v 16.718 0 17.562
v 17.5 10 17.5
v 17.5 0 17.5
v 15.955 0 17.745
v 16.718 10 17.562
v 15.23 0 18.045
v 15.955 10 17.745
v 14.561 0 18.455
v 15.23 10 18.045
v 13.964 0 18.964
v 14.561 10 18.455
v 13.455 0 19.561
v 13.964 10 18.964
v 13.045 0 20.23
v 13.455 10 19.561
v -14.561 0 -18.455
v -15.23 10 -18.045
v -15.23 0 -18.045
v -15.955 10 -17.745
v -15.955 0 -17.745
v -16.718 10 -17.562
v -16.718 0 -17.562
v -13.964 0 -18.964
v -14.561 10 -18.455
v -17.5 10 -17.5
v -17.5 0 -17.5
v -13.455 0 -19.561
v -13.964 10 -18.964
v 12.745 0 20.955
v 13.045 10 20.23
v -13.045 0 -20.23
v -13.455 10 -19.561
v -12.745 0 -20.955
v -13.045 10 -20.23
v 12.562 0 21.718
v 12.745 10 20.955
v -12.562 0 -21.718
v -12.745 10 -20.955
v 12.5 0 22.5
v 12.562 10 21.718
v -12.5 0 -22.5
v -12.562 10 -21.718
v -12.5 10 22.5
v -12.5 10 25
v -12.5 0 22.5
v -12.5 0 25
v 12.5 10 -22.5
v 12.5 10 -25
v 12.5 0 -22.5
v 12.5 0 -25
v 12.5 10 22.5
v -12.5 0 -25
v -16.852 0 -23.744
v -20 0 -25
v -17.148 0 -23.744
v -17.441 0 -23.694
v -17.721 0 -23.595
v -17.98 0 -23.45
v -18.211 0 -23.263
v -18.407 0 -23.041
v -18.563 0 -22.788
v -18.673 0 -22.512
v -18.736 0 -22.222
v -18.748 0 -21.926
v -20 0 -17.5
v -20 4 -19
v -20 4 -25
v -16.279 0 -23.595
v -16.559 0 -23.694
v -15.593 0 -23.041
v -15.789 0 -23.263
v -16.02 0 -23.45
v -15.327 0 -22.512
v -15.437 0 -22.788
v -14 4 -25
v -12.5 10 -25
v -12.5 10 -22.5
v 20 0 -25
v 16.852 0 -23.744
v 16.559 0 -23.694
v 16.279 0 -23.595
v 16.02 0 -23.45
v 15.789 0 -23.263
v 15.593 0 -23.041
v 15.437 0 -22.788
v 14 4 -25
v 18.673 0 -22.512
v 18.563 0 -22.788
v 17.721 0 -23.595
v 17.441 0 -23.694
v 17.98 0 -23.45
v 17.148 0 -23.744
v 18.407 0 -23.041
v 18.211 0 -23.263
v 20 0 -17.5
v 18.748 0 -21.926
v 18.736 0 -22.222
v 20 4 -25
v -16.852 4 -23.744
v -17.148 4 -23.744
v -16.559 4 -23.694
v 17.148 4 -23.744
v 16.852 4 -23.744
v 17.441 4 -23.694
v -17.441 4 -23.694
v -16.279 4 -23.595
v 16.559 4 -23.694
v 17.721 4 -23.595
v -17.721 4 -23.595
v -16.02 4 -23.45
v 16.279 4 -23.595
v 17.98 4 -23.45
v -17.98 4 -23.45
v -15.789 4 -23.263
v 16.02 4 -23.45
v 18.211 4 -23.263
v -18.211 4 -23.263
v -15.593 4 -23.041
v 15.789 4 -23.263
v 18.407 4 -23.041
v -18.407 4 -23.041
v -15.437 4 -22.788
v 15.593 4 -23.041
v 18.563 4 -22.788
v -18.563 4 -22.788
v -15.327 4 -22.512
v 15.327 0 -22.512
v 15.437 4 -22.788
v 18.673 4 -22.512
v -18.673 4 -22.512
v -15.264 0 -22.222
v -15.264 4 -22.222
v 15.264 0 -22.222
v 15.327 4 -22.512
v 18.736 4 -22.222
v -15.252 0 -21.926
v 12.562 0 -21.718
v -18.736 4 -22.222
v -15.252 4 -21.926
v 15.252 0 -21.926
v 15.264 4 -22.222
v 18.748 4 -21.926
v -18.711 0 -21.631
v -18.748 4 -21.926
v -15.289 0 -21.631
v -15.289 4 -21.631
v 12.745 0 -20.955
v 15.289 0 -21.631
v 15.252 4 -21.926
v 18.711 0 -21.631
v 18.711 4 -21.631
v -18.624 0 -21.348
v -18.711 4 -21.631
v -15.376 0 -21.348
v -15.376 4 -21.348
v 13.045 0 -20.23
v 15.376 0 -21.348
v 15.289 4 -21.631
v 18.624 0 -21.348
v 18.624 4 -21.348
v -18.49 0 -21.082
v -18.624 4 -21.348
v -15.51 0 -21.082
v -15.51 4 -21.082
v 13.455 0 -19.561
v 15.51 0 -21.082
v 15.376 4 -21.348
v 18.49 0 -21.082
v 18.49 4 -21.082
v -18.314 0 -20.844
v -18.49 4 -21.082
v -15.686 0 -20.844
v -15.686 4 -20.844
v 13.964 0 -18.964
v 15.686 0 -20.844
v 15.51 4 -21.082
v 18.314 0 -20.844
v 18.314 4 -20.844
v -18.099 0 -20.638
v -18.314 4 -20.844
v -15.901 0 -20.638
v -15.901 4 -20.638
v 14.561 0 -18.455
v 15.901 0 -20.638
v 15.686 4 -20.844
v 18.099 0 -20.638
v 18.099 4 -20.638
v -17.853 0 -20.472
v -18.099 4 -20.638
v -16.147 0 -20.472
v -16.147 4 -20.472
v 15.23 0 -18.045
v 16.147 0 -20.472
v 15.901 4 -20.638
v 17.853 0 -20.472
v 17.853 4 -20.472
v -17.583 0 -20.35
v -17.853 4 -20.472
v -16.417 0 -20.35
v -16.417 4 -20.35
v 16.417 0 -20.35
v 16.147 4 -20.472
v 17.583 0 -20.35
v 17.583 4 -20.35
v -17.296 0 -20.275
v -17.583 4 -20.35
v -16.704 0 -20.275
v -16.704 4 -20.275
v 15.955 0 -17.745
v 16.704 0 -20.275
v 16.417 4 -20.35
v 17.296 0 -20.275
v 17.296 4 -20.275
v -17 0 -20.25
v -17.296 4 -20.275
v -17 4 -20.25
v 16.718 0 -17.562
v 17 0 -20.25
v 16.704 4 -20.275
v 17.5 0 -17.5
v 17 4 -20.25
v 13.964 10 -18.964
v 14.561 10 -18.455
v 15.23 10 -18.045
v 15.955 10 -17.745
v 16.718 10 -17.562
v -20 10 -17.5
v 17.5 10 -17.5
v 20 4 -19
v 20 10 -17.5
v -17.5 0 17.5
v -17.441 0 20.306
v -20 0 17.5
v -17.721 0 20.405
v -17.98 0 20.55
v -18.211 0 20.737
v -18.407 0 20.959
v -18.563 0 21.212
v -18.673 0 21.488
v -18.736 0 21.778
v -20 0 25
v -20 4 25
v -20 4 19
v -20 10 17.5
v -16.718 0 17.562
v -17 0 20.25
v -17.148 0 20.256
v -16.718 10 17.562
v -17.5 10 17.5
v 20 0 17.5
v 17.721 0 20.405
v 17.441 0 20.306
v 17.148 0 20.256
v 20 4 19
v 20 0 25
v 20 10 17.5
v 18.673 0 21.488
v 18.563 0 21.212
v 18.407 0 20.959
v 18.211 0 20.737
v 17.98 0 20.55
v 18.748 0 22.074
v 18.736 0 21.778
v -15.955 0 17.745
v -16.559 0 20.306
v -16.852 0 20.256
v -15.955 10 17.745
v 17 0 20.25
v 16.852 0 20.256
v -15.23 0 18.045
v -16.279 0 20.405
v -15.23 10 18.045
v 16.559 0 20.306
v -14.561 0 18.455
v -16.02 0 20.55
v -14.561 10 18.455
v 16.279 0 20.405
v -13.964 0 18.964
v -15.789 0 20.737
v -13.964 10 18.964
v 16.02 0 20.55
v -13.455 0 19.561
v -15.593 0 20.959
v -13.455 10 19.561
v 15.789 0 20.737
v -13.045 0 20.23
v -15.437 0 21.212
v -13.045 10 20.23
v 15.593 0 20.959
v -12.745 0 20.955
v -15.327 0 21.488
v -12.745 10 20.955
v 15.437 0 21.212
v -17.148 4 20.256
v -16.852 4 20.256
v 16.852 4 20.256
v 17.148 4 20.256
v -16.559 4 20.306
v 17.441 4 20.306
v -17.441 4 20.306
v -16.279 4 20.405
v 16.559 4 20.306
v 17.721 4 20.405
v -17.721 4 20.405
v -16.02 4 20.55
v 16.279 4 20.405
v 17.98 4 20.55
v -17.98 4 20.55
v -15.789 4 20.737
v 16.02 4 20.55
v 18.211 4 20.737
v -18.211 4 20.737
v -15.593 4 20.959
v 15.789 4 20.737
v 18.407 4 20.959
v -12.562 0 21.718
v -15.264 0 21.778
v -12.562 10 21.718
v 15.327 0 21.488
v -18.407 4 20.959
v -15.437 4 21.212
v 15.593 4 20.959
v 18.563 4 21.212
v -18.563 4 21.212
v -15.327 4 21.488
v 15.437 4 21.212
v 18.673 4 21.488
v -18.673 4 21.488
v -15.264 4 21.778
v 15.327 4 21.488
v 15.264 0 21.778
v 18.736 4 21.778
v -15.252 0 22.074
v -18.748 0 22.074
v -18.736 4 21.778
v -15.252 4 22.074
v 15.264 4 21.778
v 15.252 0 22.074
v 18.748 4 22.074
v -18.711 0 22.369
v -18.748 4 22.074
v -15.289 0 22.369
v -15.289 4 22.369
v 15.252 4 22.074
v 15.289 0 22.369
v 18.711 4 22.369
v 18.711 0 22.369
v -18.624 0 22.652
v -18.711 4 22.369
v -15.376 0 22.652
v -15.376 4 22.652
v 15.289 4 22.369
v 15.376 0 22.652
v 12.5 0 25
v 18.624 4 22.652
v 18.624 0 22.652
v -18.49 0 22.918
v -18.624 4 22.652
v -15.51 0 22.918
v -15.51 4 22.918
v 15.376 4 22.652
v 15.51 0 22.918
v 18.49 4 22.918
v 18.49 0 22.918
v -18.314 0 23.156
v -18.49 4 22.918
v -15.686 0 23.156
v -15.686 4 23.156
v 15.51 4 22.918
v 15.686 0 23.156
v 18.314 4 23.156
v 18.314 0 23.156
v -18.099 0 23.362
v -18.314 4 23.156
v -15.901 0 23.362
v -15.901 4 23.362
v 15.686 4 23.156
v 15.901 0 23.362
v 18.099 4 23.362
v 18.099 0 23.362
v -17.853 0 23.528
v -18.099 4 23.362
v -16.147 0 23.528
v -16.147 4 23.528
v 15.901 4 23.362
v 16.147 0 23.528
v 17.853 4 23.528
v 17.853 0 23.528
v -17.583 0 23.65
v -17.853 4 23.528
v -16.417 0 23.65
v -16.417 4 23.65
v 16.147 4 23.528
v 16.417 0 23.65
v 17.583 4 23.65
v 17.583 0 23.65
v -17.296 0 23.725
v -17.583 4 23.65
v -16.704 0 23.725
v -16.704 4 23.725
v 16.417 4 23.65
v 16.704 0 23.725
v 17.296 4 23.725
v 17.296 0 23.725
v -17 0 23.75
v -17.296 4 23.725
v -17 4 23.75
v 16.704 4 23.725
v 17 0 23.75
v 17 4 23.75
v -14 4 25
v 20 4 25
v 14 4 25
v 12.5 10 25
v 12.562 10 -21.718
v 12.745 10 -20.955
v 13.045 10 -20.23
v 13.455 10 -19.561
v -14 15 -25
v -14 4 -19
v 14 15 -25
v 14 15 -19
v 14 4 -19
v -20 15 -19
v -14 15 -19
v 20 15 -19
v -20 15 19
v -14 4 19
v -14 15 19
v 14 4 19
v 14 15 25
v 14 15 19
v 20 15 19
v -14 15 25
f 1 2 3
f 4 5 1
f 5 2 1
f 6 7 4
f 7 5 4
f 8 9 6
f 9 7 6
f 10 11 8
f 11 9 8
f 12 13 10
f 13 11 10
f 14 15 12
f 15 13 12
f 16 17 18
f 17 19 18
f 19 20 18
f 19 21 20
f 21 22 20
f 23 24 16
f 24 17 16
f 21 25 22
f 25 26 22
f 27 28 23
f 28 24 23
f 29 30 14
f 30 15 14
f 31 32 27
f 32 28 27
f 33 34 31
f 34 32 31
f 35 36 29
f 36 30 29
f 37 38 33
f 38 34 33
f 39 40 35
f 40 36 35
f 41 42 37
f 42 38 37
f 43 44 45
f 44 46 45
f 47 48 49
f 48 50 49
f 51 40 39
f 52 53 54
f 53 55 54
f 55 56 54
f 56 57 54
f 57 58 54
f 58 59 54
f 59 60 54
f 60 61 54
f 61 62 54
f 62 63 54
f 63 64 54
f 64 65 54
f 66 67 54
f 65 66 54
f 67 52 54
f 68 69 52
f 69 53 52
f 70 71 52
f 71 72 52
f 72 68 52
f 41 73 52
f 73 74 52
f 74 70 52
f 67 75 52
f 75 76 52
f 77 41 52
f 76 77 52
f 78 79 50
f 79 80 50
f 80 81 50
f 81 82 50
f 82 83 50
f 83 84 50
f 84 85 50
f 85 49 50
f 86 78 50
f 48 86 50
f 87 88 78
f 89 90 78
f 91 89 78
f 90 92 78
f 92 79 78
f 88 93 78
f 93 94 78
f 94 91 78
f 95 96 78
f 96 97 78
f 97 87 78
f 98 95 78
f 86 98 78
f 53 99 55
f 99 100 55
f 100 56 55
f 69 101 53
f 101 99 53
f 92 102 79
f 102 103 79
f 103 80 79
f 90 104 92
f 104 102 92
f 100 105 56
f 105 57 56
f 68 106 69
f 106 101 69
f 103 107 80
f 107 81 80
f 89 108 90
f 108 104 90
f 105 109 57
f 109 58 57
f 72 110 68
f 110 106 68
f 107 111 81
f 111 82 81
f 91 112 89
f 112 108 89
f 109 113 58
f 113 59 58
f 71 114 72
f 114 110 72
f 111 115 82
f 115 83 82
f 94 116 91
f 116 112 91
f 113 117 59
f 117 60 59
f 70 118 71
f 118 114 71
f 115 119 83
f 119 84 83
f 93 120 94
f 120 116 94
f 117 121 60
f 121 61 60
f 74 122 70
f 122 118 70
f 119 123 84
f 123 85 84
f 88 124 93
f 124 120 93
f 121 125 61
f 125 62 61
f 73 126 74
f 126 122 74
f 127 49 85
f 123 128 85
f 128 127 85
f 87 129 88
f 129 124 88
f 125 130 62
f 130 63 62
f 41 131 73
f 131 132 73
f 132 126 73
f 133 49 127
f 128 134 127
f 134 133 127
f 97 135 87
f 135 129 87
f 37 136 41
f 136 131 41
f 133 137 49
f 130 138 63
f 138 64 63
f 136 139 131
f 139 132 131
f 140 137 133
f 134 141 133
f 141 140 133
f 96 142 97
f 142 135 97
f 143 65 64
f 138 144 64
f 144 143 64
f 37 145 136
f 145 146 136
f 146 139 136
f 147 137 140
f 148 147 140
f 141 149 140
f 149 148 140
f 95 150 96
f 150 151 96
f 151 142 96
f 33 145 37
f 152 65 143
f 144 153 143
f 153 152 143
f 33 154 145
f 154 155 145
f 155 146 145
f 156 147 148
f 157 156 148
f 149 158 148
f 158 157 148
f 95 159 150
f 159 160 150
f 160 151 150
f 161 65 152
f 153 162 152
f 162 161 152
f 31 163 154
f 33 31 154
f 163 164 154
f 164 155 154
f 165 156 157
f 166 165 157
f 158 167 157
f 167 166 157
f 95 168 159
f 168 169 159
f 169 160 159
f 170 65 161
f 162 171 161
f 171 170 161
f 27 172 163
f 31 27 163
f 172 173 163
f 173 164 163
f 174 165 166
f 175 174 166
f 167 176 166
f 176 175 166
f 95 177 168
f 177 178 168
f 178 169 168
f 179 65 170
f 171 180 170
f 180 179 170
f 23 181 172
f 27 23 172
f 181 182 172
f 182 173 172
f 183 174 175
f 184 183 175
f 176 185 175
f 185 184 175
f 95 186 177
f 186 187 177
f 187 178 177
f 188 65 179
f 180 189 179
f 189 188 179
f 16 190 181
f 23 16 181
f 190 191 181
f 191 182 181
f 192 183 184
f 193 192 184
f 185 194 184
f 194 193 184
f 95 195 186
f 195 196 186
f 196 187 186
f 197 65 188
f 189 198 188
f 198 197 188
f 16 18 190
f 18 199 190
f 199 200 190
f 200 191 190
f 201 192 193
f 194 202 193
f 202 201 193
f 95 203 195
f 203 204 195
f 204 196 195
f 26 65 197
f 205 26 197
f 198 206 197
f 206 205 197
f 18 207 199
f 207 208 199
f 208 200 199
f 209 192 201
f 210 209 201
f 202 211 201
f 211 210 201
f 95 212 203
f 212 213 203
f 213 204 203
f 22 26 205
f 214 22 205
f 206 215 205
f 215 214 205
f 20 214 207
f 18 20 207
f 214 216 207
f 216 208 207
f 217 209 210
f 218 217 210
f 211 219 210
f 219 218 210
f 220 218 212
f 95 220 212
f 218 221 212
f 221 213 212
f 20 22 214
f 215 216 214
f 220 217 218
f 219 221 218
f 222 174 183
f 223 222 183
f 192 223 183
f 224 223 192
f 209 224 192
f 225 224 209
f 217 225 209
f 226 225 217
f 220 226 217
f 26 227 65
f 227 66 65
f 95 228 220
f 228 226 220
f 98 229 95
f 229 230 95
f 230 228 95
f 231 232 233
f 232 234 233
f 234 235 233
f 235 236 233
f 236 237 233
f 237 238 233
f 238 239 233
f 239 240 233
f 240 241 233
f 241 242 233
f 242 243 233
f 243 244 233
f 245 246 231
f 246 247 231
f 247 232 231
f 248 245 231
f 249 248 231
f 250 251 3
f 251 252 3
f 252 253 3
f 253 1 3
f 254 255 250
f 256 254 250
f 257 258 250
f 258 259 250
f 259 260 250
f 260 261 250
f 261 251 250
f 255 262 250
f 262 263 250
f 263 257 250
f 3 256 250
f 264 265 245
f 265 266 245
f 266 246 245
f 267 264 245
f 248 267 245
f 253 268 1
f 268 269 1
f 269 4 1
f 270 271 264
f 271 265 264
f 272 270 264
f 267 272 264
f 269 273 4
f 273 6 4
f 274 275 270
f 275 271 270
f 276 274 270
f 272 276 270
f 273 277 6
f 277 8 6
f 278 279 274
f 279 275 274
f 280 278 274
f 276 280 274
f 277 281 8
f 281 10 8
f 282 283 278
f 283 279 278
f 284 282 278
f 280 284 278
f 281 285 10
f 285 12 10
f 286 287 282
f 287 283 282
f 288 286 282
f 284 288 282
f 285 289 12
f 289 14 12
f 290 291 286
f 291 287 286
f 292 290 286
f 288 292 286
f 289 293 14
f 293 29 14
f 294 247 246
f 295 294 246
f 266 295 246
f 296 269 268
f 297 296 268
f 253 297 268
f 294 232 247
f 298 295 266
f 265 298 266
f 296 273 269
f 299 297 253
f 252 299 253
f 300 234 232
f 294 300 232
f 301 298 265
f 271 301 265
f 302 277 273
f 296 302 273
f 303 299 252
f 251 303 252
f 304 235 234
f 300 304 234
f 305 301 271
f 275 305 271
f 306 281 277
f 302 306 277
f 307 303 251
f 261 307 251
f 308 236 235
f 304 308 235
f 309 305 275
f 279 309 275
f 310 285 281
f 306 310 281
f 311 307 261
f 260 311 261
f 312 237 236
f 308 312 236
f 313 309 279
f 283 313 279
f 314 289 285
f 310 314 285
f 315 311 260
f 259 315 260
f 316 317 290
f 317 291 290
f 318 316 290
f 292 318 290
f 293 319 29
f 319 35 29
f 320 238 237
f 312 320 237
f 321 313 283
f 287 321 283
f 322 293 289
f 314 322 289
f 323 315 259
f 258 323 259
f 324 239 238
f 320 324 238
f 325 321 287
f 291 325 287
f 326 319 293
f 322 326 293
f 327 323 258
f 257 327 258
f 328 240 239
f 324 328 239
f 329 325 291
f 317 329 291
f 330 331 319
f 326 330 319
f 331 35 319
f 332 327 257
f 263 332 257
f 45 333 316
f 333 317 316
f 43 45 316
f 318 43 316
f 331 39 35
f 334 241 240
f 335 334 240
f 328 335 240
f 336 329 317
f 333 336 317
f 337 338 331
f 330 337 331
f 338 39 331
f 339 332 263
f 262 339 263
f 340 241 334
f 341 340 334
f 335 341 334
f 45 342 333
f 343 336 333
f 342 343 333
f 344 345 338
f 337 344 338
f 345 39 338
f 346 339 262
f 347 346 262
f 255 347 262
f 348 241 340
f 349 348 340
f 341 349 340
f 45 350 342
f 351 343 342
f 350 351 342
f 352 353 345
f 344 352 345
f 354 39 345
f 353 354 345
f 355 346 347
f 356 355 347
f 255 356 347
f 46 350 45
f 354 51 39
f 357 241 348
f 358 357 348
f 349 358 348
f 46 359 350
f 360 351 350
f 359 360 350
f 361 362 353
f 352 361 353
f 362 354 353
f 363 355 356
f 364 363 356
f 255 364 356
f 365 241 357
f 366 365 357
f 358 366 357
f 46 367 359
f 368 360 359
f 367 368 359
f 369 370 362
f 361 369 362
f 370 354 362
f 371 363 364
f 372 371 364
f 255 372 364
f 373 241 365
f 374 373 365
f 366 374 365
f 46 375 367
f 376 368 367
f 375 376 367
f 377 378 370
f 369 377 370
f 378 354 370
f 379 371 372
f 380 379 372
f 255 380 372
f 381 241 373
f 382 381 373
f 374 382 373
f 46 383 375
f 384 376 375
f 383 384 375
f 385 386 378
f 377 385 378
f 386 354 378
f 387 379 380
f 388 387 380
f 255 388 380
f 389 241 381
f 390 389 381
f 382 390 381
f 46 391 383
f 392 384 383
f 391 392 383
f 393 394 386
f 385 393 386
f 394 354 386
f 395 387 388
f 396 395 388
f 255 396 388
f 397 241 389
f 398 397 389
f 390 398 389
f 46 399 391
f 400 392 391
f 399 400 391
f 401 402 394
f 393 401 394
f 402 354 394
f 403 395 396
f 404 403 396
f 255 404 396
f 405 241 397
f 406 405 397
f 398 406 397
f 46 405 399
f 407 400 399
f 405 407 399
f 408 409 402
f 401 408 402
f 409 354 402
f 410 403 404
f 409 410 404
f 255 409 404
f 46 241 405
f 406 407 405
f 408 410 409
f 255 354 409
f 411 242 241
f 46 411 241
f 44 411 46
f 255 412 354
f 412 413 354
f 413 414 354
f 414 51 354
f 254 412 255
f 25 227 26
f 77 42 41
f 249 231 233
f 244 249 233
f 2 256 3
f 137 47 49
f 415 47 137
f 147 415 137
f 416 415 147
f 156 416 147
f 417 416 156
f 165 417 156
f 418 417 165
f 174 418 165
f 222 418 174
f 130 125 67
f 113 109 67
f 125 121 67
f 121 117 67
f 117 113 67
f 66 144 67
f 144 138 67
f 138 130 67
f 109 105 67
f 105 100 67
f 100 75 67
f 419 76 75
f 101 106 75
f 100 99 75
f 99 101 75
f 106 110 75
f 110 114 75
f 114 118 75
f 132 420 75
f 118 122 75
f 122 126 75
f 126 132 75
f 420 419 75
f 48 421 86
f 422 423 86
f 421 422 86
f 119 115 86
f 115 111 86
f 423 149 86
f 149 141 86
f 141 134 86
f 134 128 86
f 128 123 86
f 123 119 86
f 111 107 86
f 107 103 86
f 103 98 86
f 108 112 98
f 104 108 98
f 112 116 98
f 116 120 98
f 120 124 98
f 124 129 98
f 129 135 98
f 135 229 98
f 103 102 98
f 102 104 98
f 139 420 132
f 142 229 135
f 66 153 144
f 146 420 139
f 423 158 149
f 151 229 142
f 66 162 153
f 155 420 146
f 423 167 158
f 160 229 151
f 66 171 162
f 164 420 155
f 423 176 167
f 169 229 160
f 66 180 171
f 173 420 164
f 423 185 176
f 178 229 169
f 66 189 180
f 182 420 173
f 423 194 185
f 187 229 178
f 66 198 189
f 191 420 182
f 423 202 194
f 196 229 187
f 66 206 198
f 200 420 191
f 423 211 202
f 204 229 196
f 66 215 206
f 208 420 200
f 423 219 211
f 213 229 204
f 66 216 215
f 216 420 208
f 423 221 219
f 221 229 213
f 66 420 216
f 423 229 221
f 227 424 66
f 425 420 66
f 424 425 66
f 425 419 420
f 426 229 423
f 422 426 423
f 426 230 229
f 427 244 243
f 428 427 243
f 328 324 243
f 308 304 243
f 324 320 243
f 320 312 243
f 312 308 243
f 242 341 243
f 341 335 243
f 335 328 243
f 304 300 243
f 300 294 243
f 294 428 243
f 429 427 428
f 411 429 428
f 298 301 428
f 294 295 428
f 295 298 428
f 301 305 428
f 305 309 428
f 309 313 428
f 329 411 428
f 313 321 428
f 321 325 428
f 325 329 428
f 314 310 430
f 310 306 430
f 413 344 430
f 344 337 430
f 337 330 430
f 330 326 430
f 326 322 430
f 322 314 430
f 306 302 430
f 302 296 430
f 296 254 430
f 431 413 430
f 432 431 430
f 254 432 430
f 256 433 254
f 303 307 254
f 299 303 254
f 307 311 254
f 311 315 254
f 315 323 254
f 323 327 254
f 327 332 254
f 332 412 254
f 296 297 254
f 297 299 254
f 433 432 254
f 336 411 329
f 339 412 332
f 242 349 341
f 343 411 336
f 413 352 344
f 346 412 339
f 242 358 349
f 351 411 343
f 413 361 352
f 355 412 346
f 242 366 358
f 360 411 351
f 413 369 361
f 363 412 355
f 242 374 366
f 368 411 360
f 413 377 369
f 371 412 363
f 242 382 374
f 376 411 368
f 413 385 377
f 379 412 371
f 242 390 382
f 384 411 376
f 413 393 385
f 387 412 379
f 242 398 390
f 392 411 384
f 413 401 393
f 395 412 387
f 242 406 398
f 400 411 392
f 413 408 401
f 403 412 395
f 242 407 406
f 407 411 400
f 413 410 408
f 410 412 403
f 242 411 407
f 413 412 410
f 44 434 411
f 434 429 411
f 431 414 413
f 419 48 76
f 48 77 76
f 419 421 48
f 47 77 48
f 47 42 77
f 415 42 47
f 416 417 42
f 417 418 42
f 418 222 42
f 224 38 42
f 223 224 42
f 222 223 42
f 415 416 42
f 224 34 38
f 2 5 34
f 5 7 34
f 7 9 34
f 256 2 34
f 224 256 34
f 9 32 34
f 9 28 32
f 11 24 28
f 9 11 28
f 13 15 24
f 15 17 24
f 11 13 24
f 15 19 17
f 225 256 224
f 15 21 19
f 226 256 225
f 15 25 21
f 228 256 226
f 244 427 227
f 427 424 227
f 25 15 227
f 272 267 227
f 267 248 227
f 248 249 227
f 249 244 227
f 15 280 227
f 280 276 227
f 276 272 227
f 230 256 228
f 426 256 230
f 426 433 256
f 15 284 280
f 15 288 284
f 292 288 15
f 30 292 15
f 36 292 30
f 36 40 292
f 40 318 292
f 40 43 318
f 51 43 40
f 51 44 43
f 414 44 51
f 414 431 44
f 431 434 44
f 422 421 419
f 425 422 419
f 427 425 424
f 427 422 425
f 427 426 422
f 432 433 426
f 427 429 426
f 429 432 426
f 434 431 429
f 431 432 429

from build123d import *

# Parameters (mm, degrees)
CROQUIS1_W                = 40
CROQUIS1_H                = 50
SALIENTE_EXTRUIR1_DEPTH   = 15
CROQUIS2_R                = 1.75
CORTAR_EXTRUIR1_DEPTH     = 15
SIMETR_A2_COPY_1_SKETCH_R = 1.75
SIMETR_A2_COPY_1_DEPTH    = 15
CROQUIS3_W                = 6
CROQUIS3_H                = 6
CORTAR_EXTRUIR6_DEPTH     = 11
SIMETR_A4_COPY_1_SKETCH_W = 6
SIMETR_A4_COPY_1_SKETCH_H = 6
SIMETR_A4_COPY_1_DEPTH    = 11
CROQUIS4_W                = 35
CROQUIS4_H                = 10
CORTAR_EXTRUIR7_DEPTH     = 50.497474683
CROQUIS5_W                = 25
CROQUIS5_H                = 10
CORTAR_EXTRUIR8_DEPTH     = 56.901699437
REDONDEO1_R               = 5


with BuildPart() as part:
    # Croquis1 → Saliente-Extruir1 (new body)
    with BuildSketch(Plane(origin=(0, 0, 0), x_dir=(1, 0, 0), z_dir=(0, 1, 0))):
        Rectangle(CROQUIS1_W, CROQUIS1_H)
    extrude(amount=SALIENTE_EXTRUIR1_DEPTH)

    # Croquis2 → Cortar-Extruir1 (cut)
    with BuildSketch(Plane(origin=(0, 15, 0), x_dir=(1, 0, 0), z_dir=(0, 1, 0))):
        with Locations(Location((-17, 22, 0), (0, 0, 270))):
            Circle(CROQUIS2_R)
    cortar_extruir1 = extrude(amount=-CORTAR_EXTRUIR1_DEPTH, mode=Mode.SUBTRACT)

    # Simetría1: Cortar-Extruir1 across plane
    add(cortar_extruir1.mirror(Plane(origin=(0, 0, 0), x_dir=(0, 0, 1), z_dir=(1, 0, 0))), mode=Mode.SUBTRACT)

    # Simetría2: Cortar-Extruir1 across plane
    add(cortar_extruir1.mirror(Plane.XY), mode=Mode.SUBTRACT)

    # Simetría2 copy 1 sketch → Simetría2 copy 1 (cut)
    with BuildSketch(Plane(origin=(0, 15, 0), x_dir=(-1, 0, 0), z_dir=(0, 1, 0))):
        with Locations(Location((-17, 22, 0), (0, 0, 270))):
            Circle(SIMETR_A2_COPY_1_SKETCH_R)
    extrude(amount=-SIMETR_A2_COPY_1_DEPTH, mode=Mode.SUBTRACT)

    # Croquis3 → Cortar-Extruir6 (cut)
    with BuildSketch(Plane(origin=(0, 15, 0), x_dir=(1, 0, 0), z_dir=(0, 1, 0))):
        with Locations((-17, 22)):
            Rectangle(CROQUIS3_W, CROQUIS3_H)
    cortar_extruir6 = extrude(amount=-CORTAR_EXTRUIR6_DEPTH, mode=Mode.SUBTRACT)

    # Simetría3: Cortar-Extruir6 across plane
    add(cortar_extruir6.mirror(Plane(origin=(0, 0, 0), x_dir=(0, 0, 1), z_dir=(1, 0, 0))), mode=Mode.SUBTRACT)

    # Simetría4: Cortar-Extruir6 across plane
    add(cortar_extruir6.mirror(Plane.XY), mode=Mode.SUBTRACT)

    # Simetría4 copy 1 sketch → Simetría4 copy 1 (cut)
    with BuildSketch(Plane(origin=(0, 15, 0), x_dir=(-1, 0, 0), z_dir=(0, 1, 0))):
        with Locations((-17, 22)):
            Rectangle(SIMETR_A4_COPY_1_SKETCH_W, SIMETR_A4_COPY_1_SKETCH_H)
    extrude(amount=-SIMETR_A4_COPY_1_DEPTH, mode=Mode.SUBTRACT)

    # Croquis4 → Cortar-Extruir7 (cut, through all)
    with BuildSketch(Plane.ZY.offset(20)):
        with Locations((0, 5)):
            Rectangle(CROQUIS4_W, CROQUIS4_H)
    extrude(amount=-CORTAR_EXTRUIR7_DEPTH, mode=Mode.SUBTRACT)

    # Croquis5 → Cortar-Extruir8 (cut, through all)
    with BuildSketch(Plane.XY.offset(25)):
        with Locations((0, 5)):
            Rectangle(CROQUIS5_W, CROQUIS5_H)
    extrude(amount=-CORTAR_EXTRUIR8_DEPTH, mode=Mode.SUBTRACT)

    # Redondeo1
    redondeo1_edges = [part.edges().sort_by_distance(p)[0] for p in [
        (12.5, 5, 17.5),
        (-12.5, 5, 17.5),
        (-12.5, 5, -17.5),
        (12.5, 5, -17.5),
    ]]
    fillet(redondeo1_edges, radius=REDONDEO1_R)


solid = part.part
